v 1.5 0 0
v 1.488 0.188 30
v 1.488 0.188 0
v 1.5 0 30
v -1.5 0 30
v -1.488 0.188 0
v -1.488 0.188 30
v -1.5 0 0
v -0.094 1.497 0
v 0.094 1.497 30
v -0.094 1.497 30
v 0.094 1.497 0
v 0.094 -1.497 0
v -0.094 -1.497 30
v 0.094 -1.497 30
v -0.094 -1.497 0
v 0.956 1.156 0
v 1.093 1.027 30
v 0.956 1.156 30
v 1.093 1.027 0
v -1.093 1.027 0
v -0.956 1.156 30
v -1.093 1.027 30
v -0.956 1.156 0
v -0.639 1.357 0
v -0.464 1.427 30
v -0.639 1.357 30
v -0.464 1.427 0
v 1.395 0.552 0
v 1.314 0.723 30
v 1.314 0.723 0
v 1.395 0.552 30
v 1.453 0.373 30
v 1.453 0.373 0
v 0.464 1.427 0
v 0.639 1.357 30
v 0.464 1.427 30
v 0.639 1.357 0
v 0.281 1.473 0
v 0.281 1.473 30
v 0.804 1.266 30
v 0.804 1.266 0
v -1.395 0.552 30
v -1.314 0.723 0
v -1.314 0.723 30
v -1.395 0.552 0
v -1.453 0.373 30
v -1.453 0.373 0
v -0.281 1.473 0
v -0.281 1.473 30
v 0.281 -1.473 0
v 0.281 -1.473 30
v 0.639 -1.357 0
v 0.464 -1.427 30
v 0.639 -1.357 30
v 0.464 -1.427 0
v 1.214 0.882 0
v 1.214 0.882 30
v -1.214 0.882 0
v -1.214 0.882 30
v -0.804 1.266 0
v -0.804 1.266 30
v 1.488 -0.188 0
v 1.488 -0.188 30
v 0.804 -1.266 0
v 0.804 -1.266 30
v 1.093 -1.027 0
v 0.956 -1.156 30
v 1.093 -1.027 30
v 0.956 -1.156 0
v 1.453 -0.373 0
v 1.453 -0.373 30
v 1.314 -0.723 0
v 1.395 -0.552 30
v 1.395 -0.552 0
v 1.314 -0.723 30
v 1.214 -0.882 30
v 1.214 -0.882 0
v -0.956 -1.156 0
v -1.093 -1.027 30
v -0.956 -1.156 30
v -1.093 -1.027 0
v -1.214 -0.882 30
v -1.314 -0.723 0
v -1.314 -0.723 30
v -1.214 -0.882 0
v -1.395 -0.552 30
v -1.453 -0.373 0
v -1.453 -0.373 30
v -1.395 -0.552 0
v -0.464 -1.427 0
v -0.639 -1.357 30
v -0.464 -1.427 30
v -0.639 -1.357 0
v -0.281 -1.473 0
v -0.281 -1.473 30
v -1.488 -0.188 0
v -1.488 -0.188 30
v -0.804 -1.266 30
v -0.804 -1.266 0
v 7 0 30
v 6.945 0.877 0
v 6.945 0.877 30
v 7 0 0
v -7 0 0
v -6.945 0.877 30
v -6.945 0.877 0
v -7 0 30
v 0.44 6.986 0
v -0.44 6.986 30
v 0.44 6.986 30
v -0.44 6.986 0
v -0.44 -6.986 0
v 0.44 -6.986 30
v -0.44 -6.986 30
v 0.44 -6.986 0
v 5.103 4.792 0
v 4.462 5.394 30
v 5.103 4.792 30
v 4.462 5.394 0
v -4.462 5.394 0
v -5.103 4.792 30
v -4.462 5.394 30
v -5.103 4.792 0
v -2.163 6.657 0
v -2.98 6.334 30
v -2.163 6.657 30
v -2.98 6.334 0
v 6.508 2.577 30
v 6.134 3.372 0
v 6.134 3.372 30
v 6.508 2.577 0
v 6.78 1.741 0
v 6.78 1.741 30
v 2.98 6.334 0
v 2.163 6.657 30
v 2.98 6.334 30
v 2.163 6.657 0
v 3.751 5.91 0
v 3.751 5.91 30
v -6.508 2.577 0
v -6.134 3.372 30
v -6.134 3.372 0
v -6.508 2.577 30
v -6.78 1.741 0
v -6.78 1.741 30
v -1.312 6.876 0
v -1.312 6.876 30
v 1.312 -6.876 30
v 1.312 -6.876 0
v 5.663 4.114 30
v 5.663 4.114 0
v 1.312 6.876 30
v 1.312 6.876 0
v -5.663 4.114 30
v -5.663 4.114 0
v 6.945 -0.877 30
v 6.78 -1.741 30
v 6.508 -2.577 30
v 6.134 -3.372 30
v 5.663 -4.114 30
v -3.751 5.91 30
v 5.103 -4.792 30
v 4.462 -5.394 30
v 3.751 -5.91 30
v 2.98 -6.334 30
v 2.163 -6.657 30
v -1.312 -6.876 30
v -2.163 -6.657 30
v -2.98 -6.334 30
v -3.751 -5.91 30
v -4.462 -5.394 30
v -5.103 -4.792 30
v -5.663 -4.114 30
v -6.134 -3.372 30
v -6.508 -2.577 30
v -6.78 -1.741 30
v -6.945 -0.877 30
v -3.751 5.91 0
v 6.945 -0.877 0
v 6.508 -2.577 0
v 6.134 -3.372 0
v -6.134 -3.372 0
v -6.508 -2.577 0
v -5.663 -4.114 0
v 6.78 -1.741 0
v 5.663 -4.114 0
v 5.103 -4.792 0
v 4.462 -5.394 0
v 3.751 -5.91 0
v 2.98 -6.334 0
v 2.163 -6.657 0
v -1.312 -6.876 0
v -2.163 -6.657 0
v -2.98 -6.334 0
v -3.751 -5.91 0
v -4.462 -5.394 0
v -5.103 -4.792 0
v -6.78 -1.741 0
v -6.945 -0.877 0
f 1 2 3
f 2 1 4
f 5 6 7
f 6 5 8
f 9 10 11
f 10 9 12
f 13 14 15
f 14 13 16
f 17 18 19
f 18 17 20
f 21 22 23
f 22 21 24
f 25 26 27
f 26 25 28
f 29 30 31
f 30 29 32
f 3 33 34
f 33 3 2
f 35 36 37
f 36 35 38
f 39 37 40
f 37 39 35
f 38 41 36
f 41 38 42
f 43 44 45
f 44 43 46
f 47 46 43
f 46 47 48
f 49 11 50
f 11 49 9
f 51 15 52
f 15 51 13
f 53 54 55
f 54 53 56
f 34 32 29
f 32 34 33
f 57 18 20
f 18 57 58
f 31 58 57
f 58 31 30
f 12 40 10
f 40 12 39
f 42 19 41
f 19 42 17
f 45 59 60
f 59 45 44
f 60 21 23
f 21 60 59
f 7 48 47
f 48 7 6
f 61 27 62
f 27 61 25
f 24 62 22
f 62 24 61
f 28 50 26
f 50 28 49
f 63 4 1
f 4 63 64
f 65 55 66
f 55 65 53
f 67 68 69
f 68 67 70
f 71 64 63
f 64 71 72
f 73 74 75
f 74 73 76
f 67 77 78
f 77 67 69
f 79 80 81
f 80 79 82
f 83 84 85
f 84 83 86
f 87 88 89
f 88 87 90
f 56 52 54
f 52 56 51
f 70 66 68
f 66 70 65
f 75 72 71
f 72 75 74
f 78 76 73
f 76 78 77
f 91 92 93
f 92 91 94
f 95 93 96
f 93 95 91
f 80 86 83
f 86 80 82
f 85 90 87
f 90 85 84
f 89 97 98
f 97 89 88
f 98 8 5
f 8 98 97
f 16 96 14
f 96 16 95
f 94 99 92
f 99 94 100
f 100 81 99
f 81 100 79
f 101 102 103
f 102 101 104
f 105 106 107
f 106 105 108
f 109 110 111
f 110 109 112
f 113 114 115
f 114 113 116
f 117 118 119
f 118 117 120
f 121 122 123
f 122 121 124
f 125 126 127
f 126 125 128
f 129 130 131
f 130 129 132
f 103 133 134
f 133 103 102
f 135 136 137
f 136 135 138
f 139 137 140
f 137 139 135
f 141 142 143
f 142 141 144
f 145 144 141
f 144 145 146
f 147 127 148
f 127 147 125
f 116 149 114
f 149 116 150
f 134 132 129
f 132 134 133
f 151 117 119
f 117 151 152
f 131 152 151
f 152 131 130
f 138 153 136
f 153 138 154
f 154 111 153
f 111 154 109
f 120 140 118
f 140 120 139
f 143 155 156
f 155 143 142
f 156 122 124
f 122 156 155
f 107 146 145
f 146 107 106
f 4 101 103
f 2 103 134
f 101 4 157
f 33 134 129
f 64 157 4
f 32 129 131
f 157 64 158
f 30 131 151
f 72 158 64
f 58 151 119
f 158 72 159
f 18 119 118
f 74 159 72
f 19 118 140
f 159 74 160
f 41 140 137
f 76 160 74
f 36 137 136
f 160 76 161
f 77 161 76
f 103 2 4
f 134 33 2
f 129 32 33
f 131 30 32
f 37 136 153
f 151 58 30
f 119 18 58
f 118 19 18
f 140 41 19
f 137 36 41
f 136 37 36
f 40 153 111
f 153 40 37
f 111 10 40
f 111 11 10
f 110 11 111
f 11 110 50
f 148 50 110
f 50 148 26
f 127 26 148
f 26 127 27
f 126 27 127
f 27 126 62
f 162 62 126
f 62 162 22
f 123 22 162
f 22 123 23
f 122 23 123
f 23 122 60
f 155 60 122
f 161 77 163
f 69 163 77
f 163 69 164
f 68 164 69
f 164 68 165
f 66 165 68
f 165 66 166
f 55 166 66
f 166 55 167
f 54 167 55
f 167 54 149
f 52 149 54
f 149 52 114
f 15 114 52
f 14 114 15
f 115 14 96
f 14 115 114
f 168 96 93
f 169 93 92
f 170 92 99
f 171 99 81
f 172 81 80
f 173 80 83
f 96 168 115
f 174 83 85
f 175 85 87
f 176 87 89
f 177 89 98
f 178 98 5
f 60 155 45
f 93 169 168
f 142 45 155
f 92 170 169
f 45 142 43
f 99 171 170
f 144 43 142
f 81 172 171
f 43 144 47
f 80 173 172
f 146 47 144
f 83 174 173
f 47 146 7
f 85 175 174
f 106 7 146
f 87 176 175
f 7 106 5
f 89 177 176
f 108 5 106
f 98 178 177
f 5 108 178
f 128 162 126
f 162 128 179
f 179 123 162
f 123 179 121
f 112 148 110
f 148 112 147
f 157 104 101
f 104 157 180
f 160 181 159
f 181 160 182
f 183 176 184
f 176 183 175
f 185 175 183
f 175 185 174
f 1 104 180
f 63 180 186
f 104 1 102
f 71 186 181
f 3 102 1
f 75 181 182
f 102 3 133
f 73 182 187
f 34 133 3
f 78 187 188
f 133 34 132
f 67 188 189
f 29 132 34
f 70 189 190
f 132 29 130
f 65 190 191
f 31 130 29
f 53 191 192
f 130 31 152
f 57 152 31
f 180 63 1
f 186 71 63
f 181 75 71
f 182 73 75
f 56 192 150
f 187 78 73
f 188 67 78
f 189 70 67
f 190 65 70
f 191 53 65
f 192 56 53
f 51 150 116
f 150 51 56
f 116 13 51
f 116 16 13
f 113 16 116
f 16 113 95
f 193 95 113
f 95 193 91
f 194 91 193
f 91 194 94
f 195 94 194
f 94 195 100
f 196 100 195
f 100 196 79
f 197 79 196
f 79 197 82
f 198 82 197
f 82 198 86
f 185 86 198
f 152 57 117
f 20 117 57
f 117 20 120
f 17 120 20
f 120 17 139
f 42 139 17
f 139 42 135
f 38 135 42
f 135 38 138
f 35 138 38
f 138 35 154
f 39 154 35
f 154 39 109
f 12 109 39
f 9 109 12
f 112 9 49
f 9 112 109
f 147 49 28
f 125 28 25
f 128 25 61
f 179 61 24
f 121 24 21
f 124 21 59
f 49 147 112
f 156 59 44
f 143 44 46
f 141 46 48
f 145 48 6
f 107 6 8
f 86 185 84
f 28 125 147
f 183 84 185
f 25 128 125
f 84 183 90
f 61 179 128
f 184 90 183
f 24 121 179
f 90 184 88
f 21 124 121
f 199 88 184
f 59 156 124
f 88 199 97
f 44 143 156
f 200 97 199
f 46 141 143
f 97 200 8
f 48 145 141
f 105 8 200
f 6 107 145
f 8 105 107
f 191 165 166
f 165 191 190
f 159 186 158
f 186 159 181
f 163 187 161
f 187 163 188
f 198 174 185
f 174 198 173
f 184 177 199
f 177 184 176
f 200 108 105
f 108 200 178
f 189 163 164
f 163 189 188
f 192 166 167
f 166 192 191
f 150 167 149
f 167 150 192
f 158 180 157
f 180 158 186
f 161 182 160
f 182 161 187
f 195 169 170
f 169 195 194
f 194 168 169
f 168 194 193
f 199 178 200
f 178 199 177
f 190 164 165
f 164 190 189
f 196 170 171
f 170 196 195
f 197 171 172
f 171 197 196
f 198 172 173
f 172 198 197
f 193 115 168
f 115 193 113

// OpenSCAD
$fn = 50;


difference() {
	union() {
		cylinder(h = 30, r = 7.0000000000);
	}
	union() {
		translate(v = [0, 0, -100]) {
			cylinder(h = 200, r = 1.5000000000);
		}
		translate(v = [0, 0, -100]) {
			cylinder(h = 200, r = 1.5000000000);
		}
	}
}
